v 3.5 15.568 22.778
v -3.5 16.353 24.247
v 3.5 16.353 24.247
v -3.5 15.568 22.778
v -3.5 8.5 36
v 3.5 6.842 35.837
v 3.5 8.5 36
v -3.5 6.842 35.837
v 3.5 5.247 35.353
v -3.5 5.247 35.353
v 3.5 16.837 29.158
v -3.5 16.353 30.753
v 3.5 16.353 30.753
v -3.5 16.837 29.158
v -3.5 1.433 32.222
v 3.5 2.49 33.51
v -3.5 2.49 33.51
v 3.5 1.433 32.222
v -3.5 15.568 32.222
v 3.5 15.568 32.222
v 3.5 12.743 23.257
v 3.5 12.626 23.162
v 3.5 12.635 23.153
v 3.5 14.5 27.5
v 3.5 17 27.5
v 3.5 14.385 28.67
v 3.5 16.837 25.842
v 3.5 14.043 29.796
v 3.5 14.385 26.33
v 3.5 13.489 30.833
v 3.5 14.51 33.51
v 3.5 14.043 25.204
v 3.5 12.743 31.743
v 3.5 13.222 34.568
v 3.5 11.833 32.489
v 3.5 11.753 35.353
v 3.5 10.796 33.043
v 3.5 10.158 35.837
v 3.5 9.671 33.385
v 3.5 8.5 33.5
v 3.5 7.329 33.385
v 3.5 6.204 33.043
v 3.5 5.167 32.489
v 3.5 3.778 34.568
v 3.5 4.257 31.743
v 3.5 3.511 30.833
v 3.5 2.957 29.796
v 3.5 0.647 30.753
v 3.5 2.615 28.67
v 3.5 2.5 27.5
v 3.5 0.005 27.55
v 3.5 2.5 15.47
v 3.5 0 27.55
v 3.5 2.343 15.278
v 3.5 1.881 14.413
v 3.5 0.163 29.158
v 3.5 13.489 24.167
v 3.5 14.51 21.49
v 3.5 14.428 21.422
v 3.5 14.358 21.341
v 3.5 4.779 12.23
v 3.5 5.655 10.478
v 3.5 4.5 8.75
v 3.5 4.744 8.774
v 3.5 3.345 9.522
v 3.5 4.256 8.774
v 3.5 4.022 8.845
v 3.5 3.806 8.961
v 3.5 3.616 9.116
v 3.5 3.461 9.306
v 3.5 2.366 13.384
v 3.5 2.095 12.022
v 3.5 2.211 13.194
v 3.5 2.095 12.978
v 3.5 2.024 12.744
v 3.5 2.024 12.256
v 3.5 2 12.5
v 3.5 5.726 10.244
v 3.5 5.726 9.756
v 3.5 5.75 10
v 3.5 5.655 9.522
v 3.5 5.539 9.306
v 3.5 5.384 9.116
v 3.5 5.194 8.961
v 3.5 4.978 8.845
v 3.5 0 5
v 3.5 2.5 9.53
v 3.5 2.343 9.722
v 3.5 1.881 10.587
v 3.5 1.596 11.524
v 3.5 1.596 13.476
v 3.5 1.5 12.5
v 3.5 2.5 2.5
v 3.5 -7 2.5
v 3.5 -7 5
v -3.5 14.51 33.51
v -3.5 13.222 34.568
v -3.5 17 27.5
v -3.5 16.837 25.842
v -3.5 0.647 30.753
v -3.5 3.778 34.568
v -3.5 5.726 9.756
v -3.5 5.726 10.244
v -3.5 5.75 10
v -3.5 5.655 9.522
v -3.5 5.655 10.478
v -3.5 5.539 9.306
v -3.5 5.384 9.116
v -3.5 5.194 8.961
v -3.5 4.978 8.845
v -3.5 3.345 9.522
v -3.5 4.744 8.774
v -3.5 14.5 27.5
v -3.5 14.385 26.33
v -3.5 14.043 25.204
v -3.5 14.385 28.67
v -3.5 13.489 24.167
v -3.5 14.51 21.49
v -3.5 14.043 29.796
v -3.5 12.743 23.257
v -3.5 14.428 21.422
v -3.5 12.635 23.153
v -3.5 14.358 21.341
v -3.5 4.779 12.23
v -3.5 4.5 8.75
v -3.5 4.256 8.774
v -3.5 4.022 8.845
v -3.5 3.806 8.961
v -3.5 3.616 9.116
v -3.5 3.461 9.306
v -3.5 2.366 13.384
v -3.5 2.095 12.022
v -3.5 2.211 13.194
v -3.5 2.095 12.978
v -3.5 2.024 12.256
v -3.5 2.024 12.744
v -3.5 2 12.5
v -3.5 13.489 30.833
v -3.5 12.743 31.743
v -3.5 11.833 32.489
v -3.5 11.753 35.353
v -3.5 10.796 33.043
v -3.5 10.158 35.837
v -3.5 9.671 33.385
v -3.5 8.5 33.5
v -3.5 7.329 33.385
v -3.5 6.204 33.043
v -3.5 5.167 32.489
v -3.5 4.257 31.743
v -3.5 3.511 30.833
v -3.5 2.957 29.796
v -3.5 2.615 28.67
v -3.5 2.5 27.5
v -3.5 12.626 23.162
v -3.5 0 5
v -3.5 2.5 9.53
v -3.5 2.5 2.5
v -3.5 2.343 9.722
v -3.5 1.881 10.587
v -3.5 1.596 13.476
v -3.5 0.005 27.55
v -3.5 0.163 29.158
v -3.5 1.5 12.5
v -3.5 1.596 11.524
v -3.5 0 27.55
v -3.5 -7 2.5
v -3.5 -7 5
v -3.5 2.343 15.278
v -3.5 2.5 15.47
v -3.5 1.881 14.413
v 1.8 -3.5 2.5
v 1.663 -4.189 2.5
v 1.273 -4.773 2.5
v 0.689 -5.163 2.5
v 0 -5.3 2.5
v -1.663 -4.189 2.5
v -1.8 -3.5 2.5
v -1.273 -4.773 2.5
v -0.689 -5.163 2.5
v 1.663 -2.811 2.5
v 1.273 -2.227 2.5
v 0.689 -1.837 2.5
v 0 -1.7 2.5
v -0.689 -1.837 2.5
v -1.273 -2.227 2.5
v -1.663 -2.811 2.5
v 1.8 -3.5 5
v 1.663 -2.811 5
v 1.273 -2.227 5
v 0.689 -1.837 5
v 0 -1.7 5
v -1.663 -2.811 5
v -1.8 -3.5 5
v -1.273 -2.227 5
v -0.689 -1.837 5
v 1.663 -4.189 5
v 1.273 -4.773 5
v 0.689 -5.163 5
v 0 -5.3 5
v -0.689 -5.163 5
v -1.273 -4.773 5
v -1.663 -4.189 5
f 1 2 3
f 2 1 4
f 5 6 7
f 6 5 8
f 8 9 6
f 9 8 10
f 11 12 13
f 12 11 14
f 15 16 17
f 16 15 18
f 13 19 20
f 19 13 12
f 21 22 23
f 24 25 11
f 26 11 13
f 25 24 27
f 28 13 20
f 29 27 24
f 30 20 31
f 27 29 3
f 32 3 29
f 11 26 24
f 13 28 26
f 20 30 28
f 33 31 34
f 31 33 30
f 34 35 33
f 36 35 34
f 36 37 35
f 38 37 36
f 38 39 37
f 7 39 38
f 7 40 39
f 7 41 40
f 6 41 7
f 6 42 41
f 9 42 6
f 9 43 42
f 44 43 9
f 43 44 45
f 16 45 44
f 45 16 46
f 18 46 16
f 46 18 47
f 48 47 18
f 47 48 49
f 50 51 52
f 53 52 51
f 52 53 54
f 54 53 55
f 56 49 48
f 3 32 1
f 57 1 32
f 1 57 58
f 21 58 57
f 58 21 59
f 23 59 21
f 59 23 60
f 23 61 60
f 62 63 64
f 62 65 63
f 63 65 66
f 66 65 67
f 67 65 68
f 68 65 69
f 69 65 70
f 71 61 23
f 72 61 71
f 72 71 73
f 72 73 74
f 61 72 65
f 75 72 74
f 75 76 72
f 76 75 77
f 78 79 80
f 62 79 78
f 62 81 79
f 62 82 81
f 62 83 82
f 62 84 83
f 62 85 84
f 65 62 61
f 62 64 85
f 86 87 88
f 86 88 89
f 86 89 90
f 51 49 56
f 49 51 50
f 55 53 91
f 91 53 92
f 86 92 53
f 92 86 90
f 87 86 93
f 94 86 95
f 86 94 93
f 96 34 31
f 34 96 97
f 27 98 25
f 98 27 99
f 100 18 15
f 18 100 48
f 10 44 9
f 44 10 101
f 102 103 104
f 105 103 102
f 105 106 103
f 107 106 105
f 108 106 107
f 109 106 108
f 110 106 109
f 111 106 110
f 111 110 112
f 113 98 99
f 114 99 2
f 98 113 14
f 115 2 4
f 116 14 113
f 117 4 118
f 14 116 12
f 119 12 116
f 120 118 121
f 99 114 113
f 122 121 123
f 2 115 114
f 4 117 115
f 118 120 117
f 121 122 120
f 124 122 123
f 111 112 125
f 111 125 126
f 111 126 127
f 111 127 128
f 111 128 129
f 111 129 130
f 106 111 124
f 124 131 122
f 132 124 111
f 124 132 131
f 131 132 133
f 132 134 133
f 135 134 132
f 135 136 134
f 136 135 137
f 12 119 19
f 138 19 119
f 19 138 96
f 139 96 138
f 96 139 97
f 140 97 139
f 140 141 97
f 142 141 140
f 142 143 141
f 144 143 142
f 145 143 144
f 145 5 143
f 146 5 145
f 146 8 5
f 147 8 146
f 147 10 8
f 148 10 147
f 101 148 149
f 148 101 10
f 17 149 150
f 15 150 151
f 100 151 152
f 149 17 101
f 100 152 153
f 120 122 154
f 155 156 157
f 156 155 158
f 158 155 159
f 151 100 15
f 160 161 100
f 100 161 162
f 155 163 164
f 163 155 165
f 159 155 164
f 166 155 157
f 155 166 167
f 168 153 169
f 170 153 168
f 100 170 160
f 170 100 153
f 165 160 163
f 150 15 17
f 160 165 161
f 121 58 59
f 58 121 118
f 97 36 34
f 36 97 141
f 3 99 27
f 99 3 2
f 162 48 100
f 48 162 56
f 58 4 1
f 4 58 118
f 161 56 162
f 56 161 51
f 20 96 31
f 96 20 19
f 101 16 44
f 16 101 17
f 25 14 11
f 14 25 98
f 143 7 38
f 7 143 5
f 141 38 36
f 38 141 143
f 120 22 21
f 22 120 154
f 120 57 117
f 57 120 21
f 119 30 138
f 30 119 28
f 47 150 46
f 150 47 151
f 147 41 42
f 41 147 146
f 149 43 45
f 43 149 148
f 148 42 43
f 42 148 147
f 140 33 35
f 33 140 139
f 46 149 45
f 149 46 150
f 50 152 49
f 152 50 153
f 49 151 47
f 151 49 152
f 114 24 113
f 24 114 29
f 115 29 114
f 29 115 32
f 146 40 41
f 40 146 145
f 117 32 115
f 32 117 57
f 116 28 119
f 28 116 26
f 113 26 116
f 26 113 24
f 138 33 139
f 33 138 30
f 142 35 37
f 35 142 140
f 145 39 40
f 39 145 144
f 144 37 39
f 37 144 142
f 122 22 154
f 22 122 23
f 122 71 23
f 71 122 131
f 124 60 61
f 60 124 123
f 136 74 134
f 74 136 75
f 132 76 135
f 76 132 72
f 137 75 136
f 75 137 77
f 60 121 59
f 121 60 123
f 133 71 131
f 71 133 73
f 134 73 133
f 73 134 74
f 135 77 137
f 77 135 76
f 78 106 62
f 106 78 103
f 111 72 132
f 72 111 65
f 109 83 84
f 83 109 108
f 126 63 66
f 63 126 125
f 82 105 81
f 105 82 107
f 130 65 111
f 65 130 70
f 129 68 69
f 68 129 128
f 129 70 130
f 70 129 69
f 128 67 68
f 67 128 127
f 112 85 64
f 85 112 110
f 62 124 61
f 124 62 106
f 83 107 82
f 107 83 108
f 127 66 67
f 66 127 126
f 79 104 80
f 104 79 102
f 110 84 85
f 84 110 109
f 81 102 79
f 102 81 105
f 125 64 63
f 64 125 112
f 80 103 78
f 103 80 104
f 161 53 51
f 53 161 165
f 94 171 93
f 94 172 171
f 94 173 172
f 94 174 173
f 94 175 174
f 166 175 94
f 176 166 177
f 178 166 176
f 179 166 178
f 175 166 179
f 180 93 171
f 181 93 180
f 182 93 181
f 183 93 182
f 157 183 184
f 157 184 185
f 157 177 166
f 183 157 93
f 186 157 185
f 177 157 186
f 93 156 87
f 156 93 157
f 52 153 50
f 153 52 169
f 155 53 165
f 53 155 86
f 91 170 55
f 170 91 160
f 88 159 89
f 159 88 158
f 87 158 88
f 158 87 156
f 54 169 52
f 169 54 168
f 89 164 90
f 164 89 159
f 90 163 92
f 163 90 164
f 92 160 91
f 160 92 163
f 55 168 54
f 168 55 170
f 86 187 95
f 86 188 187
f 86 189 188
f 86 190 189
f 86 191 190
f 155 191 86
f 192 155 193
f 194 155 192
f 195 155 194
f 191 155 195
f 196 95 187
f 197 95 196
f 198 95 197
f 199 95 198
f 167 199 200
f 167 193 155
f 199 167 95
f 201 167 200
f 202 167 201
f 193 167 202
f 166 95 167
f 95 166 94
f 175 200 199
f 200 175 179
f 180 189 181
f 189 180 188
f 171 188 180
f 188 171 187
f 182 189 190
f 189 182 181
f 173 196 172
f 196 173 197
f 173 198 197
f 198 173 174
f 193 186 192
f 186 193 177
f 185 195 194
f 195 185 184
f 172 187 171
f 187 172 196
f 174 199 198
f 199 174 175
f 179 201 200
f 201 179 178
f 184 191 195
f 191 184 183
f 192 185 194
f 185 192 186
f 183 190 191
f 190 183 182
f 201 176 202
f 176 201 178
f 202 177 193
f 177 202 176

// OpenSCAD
/******************************************************************
*                                                                 *
* OpenFlexure Microscope: Optics unit                             *
*                                                                 *
* This is part of the OpenFlexure microscope, an open-source      *
* microscope and 3-axis translation stage.  It gets really good   *
* precision over a ~10mm range, by using plastic flexure          *
* mechanisms.                                                     *
*                                                                 *
* (c) Richard Bowman, January 2016                                *
* Released under the CERN Open Hardware License                   *
*                                                                 *
******************************************************************/


use <../utilities.scad>;

//this is for mini culture plates, 39mm outer diameter and 12.4mm high
sample=[0,19/2,12.4-1.5-9]; //position of clamping point relative to bolt

$fn=32;
d = 0.05;

module sample_clip(sample,t=2.5,w=6,roc=-1,slope=30){
    roc = roc>0 ? roc : sample[2]/2 + sample[1]*sin(slope) - t/2; //radius of curvature
    a = sqrt(pow(sample[1], 2) + pow(sample[2] - roc - t/2, 2));
      //a is the distance from the contact-point cylinder to the 
      //centre of the curved part
    angle = acos( (roc + t/2) / a ) + atan((sample[2] - roc - t/2)/sample[1]); //angle through which we must rotate the join between
    //curved part and straight part
    echo("angle set to:",angle);
    /*angle = 75; //angle of straight part to the vertical
    roc =*/ 
    difference(){
        union(){
            //anchor to stage
            //cylinder(r=w/2,h=t);
            
            translate([0,0,roc+t]) rotate([0,90,0]) difference(){
                cylinder(r=roc+t,h=w,center=true);
                cylinder(r=roc,h=999,center=true);
                translate([0,0,-99]) rotate(0) cube([999,999,999]);
                translate([0,0,-99]) rotate(angle) cube([999,999,999]);
            }
            sequential_hull(){
                translate([0,0,roc+t]) rotate([0,90,0]) rotate(angle) translate([0,roc+t/2,0]) cylinder(r=t/2,h=w,center=true);
                translate([0,sample[1],sample[2]+t/2]) rotate([0,90,0]) cylinder(r=t/2,h=w,center=true);
                translate([0,sample[1]+t,sample[2]+t]) rotate([0,90,0]) cylinder(r=t/2,h=w,center=true);
            }
            
        }
        //cylinder(r=3/2*1.2,h=999,center=true,$fn=16);
    }
}


// we want to clamp the centre of a microscope slide, 12.5mm above the ground
// there will be a spacer 
clip_l = 15;
beam_h = 12.5;
bottom = 2.5;
w = 7;

{
    translate([0,0,clip_l + beam_h]) rotate([-90,0,0]) 
                            sample_clip([0,clip_l,2], w=w, roc=6);
    difference(){
        translate([-w/2,0,bottom]) cube([w, 2.5, beam_h + clip_l + d - bottom]);
        translate([0,2.5+5-1,beam_h]) rotate([0,90,0]) cylinder(h=999, r=5, center=true);
    }
    difference(){
        translate([-w/2,-w,bottom]) cube([w, w+d, 2.5]);
        translate([0,-w/2,-1]) cylinder(r=3/2*1.2, h=999, $fn=16);
    }
}
/*
translate([10,0,0]) sample_clip([0,20,0]);
translate([20,0,0]) sample_clip([0,20,10]);
translate([30,0,0]) sample_clip([0,10,3]);
translate([40,0,0]) sample_clip([0,10,15]);
*/
